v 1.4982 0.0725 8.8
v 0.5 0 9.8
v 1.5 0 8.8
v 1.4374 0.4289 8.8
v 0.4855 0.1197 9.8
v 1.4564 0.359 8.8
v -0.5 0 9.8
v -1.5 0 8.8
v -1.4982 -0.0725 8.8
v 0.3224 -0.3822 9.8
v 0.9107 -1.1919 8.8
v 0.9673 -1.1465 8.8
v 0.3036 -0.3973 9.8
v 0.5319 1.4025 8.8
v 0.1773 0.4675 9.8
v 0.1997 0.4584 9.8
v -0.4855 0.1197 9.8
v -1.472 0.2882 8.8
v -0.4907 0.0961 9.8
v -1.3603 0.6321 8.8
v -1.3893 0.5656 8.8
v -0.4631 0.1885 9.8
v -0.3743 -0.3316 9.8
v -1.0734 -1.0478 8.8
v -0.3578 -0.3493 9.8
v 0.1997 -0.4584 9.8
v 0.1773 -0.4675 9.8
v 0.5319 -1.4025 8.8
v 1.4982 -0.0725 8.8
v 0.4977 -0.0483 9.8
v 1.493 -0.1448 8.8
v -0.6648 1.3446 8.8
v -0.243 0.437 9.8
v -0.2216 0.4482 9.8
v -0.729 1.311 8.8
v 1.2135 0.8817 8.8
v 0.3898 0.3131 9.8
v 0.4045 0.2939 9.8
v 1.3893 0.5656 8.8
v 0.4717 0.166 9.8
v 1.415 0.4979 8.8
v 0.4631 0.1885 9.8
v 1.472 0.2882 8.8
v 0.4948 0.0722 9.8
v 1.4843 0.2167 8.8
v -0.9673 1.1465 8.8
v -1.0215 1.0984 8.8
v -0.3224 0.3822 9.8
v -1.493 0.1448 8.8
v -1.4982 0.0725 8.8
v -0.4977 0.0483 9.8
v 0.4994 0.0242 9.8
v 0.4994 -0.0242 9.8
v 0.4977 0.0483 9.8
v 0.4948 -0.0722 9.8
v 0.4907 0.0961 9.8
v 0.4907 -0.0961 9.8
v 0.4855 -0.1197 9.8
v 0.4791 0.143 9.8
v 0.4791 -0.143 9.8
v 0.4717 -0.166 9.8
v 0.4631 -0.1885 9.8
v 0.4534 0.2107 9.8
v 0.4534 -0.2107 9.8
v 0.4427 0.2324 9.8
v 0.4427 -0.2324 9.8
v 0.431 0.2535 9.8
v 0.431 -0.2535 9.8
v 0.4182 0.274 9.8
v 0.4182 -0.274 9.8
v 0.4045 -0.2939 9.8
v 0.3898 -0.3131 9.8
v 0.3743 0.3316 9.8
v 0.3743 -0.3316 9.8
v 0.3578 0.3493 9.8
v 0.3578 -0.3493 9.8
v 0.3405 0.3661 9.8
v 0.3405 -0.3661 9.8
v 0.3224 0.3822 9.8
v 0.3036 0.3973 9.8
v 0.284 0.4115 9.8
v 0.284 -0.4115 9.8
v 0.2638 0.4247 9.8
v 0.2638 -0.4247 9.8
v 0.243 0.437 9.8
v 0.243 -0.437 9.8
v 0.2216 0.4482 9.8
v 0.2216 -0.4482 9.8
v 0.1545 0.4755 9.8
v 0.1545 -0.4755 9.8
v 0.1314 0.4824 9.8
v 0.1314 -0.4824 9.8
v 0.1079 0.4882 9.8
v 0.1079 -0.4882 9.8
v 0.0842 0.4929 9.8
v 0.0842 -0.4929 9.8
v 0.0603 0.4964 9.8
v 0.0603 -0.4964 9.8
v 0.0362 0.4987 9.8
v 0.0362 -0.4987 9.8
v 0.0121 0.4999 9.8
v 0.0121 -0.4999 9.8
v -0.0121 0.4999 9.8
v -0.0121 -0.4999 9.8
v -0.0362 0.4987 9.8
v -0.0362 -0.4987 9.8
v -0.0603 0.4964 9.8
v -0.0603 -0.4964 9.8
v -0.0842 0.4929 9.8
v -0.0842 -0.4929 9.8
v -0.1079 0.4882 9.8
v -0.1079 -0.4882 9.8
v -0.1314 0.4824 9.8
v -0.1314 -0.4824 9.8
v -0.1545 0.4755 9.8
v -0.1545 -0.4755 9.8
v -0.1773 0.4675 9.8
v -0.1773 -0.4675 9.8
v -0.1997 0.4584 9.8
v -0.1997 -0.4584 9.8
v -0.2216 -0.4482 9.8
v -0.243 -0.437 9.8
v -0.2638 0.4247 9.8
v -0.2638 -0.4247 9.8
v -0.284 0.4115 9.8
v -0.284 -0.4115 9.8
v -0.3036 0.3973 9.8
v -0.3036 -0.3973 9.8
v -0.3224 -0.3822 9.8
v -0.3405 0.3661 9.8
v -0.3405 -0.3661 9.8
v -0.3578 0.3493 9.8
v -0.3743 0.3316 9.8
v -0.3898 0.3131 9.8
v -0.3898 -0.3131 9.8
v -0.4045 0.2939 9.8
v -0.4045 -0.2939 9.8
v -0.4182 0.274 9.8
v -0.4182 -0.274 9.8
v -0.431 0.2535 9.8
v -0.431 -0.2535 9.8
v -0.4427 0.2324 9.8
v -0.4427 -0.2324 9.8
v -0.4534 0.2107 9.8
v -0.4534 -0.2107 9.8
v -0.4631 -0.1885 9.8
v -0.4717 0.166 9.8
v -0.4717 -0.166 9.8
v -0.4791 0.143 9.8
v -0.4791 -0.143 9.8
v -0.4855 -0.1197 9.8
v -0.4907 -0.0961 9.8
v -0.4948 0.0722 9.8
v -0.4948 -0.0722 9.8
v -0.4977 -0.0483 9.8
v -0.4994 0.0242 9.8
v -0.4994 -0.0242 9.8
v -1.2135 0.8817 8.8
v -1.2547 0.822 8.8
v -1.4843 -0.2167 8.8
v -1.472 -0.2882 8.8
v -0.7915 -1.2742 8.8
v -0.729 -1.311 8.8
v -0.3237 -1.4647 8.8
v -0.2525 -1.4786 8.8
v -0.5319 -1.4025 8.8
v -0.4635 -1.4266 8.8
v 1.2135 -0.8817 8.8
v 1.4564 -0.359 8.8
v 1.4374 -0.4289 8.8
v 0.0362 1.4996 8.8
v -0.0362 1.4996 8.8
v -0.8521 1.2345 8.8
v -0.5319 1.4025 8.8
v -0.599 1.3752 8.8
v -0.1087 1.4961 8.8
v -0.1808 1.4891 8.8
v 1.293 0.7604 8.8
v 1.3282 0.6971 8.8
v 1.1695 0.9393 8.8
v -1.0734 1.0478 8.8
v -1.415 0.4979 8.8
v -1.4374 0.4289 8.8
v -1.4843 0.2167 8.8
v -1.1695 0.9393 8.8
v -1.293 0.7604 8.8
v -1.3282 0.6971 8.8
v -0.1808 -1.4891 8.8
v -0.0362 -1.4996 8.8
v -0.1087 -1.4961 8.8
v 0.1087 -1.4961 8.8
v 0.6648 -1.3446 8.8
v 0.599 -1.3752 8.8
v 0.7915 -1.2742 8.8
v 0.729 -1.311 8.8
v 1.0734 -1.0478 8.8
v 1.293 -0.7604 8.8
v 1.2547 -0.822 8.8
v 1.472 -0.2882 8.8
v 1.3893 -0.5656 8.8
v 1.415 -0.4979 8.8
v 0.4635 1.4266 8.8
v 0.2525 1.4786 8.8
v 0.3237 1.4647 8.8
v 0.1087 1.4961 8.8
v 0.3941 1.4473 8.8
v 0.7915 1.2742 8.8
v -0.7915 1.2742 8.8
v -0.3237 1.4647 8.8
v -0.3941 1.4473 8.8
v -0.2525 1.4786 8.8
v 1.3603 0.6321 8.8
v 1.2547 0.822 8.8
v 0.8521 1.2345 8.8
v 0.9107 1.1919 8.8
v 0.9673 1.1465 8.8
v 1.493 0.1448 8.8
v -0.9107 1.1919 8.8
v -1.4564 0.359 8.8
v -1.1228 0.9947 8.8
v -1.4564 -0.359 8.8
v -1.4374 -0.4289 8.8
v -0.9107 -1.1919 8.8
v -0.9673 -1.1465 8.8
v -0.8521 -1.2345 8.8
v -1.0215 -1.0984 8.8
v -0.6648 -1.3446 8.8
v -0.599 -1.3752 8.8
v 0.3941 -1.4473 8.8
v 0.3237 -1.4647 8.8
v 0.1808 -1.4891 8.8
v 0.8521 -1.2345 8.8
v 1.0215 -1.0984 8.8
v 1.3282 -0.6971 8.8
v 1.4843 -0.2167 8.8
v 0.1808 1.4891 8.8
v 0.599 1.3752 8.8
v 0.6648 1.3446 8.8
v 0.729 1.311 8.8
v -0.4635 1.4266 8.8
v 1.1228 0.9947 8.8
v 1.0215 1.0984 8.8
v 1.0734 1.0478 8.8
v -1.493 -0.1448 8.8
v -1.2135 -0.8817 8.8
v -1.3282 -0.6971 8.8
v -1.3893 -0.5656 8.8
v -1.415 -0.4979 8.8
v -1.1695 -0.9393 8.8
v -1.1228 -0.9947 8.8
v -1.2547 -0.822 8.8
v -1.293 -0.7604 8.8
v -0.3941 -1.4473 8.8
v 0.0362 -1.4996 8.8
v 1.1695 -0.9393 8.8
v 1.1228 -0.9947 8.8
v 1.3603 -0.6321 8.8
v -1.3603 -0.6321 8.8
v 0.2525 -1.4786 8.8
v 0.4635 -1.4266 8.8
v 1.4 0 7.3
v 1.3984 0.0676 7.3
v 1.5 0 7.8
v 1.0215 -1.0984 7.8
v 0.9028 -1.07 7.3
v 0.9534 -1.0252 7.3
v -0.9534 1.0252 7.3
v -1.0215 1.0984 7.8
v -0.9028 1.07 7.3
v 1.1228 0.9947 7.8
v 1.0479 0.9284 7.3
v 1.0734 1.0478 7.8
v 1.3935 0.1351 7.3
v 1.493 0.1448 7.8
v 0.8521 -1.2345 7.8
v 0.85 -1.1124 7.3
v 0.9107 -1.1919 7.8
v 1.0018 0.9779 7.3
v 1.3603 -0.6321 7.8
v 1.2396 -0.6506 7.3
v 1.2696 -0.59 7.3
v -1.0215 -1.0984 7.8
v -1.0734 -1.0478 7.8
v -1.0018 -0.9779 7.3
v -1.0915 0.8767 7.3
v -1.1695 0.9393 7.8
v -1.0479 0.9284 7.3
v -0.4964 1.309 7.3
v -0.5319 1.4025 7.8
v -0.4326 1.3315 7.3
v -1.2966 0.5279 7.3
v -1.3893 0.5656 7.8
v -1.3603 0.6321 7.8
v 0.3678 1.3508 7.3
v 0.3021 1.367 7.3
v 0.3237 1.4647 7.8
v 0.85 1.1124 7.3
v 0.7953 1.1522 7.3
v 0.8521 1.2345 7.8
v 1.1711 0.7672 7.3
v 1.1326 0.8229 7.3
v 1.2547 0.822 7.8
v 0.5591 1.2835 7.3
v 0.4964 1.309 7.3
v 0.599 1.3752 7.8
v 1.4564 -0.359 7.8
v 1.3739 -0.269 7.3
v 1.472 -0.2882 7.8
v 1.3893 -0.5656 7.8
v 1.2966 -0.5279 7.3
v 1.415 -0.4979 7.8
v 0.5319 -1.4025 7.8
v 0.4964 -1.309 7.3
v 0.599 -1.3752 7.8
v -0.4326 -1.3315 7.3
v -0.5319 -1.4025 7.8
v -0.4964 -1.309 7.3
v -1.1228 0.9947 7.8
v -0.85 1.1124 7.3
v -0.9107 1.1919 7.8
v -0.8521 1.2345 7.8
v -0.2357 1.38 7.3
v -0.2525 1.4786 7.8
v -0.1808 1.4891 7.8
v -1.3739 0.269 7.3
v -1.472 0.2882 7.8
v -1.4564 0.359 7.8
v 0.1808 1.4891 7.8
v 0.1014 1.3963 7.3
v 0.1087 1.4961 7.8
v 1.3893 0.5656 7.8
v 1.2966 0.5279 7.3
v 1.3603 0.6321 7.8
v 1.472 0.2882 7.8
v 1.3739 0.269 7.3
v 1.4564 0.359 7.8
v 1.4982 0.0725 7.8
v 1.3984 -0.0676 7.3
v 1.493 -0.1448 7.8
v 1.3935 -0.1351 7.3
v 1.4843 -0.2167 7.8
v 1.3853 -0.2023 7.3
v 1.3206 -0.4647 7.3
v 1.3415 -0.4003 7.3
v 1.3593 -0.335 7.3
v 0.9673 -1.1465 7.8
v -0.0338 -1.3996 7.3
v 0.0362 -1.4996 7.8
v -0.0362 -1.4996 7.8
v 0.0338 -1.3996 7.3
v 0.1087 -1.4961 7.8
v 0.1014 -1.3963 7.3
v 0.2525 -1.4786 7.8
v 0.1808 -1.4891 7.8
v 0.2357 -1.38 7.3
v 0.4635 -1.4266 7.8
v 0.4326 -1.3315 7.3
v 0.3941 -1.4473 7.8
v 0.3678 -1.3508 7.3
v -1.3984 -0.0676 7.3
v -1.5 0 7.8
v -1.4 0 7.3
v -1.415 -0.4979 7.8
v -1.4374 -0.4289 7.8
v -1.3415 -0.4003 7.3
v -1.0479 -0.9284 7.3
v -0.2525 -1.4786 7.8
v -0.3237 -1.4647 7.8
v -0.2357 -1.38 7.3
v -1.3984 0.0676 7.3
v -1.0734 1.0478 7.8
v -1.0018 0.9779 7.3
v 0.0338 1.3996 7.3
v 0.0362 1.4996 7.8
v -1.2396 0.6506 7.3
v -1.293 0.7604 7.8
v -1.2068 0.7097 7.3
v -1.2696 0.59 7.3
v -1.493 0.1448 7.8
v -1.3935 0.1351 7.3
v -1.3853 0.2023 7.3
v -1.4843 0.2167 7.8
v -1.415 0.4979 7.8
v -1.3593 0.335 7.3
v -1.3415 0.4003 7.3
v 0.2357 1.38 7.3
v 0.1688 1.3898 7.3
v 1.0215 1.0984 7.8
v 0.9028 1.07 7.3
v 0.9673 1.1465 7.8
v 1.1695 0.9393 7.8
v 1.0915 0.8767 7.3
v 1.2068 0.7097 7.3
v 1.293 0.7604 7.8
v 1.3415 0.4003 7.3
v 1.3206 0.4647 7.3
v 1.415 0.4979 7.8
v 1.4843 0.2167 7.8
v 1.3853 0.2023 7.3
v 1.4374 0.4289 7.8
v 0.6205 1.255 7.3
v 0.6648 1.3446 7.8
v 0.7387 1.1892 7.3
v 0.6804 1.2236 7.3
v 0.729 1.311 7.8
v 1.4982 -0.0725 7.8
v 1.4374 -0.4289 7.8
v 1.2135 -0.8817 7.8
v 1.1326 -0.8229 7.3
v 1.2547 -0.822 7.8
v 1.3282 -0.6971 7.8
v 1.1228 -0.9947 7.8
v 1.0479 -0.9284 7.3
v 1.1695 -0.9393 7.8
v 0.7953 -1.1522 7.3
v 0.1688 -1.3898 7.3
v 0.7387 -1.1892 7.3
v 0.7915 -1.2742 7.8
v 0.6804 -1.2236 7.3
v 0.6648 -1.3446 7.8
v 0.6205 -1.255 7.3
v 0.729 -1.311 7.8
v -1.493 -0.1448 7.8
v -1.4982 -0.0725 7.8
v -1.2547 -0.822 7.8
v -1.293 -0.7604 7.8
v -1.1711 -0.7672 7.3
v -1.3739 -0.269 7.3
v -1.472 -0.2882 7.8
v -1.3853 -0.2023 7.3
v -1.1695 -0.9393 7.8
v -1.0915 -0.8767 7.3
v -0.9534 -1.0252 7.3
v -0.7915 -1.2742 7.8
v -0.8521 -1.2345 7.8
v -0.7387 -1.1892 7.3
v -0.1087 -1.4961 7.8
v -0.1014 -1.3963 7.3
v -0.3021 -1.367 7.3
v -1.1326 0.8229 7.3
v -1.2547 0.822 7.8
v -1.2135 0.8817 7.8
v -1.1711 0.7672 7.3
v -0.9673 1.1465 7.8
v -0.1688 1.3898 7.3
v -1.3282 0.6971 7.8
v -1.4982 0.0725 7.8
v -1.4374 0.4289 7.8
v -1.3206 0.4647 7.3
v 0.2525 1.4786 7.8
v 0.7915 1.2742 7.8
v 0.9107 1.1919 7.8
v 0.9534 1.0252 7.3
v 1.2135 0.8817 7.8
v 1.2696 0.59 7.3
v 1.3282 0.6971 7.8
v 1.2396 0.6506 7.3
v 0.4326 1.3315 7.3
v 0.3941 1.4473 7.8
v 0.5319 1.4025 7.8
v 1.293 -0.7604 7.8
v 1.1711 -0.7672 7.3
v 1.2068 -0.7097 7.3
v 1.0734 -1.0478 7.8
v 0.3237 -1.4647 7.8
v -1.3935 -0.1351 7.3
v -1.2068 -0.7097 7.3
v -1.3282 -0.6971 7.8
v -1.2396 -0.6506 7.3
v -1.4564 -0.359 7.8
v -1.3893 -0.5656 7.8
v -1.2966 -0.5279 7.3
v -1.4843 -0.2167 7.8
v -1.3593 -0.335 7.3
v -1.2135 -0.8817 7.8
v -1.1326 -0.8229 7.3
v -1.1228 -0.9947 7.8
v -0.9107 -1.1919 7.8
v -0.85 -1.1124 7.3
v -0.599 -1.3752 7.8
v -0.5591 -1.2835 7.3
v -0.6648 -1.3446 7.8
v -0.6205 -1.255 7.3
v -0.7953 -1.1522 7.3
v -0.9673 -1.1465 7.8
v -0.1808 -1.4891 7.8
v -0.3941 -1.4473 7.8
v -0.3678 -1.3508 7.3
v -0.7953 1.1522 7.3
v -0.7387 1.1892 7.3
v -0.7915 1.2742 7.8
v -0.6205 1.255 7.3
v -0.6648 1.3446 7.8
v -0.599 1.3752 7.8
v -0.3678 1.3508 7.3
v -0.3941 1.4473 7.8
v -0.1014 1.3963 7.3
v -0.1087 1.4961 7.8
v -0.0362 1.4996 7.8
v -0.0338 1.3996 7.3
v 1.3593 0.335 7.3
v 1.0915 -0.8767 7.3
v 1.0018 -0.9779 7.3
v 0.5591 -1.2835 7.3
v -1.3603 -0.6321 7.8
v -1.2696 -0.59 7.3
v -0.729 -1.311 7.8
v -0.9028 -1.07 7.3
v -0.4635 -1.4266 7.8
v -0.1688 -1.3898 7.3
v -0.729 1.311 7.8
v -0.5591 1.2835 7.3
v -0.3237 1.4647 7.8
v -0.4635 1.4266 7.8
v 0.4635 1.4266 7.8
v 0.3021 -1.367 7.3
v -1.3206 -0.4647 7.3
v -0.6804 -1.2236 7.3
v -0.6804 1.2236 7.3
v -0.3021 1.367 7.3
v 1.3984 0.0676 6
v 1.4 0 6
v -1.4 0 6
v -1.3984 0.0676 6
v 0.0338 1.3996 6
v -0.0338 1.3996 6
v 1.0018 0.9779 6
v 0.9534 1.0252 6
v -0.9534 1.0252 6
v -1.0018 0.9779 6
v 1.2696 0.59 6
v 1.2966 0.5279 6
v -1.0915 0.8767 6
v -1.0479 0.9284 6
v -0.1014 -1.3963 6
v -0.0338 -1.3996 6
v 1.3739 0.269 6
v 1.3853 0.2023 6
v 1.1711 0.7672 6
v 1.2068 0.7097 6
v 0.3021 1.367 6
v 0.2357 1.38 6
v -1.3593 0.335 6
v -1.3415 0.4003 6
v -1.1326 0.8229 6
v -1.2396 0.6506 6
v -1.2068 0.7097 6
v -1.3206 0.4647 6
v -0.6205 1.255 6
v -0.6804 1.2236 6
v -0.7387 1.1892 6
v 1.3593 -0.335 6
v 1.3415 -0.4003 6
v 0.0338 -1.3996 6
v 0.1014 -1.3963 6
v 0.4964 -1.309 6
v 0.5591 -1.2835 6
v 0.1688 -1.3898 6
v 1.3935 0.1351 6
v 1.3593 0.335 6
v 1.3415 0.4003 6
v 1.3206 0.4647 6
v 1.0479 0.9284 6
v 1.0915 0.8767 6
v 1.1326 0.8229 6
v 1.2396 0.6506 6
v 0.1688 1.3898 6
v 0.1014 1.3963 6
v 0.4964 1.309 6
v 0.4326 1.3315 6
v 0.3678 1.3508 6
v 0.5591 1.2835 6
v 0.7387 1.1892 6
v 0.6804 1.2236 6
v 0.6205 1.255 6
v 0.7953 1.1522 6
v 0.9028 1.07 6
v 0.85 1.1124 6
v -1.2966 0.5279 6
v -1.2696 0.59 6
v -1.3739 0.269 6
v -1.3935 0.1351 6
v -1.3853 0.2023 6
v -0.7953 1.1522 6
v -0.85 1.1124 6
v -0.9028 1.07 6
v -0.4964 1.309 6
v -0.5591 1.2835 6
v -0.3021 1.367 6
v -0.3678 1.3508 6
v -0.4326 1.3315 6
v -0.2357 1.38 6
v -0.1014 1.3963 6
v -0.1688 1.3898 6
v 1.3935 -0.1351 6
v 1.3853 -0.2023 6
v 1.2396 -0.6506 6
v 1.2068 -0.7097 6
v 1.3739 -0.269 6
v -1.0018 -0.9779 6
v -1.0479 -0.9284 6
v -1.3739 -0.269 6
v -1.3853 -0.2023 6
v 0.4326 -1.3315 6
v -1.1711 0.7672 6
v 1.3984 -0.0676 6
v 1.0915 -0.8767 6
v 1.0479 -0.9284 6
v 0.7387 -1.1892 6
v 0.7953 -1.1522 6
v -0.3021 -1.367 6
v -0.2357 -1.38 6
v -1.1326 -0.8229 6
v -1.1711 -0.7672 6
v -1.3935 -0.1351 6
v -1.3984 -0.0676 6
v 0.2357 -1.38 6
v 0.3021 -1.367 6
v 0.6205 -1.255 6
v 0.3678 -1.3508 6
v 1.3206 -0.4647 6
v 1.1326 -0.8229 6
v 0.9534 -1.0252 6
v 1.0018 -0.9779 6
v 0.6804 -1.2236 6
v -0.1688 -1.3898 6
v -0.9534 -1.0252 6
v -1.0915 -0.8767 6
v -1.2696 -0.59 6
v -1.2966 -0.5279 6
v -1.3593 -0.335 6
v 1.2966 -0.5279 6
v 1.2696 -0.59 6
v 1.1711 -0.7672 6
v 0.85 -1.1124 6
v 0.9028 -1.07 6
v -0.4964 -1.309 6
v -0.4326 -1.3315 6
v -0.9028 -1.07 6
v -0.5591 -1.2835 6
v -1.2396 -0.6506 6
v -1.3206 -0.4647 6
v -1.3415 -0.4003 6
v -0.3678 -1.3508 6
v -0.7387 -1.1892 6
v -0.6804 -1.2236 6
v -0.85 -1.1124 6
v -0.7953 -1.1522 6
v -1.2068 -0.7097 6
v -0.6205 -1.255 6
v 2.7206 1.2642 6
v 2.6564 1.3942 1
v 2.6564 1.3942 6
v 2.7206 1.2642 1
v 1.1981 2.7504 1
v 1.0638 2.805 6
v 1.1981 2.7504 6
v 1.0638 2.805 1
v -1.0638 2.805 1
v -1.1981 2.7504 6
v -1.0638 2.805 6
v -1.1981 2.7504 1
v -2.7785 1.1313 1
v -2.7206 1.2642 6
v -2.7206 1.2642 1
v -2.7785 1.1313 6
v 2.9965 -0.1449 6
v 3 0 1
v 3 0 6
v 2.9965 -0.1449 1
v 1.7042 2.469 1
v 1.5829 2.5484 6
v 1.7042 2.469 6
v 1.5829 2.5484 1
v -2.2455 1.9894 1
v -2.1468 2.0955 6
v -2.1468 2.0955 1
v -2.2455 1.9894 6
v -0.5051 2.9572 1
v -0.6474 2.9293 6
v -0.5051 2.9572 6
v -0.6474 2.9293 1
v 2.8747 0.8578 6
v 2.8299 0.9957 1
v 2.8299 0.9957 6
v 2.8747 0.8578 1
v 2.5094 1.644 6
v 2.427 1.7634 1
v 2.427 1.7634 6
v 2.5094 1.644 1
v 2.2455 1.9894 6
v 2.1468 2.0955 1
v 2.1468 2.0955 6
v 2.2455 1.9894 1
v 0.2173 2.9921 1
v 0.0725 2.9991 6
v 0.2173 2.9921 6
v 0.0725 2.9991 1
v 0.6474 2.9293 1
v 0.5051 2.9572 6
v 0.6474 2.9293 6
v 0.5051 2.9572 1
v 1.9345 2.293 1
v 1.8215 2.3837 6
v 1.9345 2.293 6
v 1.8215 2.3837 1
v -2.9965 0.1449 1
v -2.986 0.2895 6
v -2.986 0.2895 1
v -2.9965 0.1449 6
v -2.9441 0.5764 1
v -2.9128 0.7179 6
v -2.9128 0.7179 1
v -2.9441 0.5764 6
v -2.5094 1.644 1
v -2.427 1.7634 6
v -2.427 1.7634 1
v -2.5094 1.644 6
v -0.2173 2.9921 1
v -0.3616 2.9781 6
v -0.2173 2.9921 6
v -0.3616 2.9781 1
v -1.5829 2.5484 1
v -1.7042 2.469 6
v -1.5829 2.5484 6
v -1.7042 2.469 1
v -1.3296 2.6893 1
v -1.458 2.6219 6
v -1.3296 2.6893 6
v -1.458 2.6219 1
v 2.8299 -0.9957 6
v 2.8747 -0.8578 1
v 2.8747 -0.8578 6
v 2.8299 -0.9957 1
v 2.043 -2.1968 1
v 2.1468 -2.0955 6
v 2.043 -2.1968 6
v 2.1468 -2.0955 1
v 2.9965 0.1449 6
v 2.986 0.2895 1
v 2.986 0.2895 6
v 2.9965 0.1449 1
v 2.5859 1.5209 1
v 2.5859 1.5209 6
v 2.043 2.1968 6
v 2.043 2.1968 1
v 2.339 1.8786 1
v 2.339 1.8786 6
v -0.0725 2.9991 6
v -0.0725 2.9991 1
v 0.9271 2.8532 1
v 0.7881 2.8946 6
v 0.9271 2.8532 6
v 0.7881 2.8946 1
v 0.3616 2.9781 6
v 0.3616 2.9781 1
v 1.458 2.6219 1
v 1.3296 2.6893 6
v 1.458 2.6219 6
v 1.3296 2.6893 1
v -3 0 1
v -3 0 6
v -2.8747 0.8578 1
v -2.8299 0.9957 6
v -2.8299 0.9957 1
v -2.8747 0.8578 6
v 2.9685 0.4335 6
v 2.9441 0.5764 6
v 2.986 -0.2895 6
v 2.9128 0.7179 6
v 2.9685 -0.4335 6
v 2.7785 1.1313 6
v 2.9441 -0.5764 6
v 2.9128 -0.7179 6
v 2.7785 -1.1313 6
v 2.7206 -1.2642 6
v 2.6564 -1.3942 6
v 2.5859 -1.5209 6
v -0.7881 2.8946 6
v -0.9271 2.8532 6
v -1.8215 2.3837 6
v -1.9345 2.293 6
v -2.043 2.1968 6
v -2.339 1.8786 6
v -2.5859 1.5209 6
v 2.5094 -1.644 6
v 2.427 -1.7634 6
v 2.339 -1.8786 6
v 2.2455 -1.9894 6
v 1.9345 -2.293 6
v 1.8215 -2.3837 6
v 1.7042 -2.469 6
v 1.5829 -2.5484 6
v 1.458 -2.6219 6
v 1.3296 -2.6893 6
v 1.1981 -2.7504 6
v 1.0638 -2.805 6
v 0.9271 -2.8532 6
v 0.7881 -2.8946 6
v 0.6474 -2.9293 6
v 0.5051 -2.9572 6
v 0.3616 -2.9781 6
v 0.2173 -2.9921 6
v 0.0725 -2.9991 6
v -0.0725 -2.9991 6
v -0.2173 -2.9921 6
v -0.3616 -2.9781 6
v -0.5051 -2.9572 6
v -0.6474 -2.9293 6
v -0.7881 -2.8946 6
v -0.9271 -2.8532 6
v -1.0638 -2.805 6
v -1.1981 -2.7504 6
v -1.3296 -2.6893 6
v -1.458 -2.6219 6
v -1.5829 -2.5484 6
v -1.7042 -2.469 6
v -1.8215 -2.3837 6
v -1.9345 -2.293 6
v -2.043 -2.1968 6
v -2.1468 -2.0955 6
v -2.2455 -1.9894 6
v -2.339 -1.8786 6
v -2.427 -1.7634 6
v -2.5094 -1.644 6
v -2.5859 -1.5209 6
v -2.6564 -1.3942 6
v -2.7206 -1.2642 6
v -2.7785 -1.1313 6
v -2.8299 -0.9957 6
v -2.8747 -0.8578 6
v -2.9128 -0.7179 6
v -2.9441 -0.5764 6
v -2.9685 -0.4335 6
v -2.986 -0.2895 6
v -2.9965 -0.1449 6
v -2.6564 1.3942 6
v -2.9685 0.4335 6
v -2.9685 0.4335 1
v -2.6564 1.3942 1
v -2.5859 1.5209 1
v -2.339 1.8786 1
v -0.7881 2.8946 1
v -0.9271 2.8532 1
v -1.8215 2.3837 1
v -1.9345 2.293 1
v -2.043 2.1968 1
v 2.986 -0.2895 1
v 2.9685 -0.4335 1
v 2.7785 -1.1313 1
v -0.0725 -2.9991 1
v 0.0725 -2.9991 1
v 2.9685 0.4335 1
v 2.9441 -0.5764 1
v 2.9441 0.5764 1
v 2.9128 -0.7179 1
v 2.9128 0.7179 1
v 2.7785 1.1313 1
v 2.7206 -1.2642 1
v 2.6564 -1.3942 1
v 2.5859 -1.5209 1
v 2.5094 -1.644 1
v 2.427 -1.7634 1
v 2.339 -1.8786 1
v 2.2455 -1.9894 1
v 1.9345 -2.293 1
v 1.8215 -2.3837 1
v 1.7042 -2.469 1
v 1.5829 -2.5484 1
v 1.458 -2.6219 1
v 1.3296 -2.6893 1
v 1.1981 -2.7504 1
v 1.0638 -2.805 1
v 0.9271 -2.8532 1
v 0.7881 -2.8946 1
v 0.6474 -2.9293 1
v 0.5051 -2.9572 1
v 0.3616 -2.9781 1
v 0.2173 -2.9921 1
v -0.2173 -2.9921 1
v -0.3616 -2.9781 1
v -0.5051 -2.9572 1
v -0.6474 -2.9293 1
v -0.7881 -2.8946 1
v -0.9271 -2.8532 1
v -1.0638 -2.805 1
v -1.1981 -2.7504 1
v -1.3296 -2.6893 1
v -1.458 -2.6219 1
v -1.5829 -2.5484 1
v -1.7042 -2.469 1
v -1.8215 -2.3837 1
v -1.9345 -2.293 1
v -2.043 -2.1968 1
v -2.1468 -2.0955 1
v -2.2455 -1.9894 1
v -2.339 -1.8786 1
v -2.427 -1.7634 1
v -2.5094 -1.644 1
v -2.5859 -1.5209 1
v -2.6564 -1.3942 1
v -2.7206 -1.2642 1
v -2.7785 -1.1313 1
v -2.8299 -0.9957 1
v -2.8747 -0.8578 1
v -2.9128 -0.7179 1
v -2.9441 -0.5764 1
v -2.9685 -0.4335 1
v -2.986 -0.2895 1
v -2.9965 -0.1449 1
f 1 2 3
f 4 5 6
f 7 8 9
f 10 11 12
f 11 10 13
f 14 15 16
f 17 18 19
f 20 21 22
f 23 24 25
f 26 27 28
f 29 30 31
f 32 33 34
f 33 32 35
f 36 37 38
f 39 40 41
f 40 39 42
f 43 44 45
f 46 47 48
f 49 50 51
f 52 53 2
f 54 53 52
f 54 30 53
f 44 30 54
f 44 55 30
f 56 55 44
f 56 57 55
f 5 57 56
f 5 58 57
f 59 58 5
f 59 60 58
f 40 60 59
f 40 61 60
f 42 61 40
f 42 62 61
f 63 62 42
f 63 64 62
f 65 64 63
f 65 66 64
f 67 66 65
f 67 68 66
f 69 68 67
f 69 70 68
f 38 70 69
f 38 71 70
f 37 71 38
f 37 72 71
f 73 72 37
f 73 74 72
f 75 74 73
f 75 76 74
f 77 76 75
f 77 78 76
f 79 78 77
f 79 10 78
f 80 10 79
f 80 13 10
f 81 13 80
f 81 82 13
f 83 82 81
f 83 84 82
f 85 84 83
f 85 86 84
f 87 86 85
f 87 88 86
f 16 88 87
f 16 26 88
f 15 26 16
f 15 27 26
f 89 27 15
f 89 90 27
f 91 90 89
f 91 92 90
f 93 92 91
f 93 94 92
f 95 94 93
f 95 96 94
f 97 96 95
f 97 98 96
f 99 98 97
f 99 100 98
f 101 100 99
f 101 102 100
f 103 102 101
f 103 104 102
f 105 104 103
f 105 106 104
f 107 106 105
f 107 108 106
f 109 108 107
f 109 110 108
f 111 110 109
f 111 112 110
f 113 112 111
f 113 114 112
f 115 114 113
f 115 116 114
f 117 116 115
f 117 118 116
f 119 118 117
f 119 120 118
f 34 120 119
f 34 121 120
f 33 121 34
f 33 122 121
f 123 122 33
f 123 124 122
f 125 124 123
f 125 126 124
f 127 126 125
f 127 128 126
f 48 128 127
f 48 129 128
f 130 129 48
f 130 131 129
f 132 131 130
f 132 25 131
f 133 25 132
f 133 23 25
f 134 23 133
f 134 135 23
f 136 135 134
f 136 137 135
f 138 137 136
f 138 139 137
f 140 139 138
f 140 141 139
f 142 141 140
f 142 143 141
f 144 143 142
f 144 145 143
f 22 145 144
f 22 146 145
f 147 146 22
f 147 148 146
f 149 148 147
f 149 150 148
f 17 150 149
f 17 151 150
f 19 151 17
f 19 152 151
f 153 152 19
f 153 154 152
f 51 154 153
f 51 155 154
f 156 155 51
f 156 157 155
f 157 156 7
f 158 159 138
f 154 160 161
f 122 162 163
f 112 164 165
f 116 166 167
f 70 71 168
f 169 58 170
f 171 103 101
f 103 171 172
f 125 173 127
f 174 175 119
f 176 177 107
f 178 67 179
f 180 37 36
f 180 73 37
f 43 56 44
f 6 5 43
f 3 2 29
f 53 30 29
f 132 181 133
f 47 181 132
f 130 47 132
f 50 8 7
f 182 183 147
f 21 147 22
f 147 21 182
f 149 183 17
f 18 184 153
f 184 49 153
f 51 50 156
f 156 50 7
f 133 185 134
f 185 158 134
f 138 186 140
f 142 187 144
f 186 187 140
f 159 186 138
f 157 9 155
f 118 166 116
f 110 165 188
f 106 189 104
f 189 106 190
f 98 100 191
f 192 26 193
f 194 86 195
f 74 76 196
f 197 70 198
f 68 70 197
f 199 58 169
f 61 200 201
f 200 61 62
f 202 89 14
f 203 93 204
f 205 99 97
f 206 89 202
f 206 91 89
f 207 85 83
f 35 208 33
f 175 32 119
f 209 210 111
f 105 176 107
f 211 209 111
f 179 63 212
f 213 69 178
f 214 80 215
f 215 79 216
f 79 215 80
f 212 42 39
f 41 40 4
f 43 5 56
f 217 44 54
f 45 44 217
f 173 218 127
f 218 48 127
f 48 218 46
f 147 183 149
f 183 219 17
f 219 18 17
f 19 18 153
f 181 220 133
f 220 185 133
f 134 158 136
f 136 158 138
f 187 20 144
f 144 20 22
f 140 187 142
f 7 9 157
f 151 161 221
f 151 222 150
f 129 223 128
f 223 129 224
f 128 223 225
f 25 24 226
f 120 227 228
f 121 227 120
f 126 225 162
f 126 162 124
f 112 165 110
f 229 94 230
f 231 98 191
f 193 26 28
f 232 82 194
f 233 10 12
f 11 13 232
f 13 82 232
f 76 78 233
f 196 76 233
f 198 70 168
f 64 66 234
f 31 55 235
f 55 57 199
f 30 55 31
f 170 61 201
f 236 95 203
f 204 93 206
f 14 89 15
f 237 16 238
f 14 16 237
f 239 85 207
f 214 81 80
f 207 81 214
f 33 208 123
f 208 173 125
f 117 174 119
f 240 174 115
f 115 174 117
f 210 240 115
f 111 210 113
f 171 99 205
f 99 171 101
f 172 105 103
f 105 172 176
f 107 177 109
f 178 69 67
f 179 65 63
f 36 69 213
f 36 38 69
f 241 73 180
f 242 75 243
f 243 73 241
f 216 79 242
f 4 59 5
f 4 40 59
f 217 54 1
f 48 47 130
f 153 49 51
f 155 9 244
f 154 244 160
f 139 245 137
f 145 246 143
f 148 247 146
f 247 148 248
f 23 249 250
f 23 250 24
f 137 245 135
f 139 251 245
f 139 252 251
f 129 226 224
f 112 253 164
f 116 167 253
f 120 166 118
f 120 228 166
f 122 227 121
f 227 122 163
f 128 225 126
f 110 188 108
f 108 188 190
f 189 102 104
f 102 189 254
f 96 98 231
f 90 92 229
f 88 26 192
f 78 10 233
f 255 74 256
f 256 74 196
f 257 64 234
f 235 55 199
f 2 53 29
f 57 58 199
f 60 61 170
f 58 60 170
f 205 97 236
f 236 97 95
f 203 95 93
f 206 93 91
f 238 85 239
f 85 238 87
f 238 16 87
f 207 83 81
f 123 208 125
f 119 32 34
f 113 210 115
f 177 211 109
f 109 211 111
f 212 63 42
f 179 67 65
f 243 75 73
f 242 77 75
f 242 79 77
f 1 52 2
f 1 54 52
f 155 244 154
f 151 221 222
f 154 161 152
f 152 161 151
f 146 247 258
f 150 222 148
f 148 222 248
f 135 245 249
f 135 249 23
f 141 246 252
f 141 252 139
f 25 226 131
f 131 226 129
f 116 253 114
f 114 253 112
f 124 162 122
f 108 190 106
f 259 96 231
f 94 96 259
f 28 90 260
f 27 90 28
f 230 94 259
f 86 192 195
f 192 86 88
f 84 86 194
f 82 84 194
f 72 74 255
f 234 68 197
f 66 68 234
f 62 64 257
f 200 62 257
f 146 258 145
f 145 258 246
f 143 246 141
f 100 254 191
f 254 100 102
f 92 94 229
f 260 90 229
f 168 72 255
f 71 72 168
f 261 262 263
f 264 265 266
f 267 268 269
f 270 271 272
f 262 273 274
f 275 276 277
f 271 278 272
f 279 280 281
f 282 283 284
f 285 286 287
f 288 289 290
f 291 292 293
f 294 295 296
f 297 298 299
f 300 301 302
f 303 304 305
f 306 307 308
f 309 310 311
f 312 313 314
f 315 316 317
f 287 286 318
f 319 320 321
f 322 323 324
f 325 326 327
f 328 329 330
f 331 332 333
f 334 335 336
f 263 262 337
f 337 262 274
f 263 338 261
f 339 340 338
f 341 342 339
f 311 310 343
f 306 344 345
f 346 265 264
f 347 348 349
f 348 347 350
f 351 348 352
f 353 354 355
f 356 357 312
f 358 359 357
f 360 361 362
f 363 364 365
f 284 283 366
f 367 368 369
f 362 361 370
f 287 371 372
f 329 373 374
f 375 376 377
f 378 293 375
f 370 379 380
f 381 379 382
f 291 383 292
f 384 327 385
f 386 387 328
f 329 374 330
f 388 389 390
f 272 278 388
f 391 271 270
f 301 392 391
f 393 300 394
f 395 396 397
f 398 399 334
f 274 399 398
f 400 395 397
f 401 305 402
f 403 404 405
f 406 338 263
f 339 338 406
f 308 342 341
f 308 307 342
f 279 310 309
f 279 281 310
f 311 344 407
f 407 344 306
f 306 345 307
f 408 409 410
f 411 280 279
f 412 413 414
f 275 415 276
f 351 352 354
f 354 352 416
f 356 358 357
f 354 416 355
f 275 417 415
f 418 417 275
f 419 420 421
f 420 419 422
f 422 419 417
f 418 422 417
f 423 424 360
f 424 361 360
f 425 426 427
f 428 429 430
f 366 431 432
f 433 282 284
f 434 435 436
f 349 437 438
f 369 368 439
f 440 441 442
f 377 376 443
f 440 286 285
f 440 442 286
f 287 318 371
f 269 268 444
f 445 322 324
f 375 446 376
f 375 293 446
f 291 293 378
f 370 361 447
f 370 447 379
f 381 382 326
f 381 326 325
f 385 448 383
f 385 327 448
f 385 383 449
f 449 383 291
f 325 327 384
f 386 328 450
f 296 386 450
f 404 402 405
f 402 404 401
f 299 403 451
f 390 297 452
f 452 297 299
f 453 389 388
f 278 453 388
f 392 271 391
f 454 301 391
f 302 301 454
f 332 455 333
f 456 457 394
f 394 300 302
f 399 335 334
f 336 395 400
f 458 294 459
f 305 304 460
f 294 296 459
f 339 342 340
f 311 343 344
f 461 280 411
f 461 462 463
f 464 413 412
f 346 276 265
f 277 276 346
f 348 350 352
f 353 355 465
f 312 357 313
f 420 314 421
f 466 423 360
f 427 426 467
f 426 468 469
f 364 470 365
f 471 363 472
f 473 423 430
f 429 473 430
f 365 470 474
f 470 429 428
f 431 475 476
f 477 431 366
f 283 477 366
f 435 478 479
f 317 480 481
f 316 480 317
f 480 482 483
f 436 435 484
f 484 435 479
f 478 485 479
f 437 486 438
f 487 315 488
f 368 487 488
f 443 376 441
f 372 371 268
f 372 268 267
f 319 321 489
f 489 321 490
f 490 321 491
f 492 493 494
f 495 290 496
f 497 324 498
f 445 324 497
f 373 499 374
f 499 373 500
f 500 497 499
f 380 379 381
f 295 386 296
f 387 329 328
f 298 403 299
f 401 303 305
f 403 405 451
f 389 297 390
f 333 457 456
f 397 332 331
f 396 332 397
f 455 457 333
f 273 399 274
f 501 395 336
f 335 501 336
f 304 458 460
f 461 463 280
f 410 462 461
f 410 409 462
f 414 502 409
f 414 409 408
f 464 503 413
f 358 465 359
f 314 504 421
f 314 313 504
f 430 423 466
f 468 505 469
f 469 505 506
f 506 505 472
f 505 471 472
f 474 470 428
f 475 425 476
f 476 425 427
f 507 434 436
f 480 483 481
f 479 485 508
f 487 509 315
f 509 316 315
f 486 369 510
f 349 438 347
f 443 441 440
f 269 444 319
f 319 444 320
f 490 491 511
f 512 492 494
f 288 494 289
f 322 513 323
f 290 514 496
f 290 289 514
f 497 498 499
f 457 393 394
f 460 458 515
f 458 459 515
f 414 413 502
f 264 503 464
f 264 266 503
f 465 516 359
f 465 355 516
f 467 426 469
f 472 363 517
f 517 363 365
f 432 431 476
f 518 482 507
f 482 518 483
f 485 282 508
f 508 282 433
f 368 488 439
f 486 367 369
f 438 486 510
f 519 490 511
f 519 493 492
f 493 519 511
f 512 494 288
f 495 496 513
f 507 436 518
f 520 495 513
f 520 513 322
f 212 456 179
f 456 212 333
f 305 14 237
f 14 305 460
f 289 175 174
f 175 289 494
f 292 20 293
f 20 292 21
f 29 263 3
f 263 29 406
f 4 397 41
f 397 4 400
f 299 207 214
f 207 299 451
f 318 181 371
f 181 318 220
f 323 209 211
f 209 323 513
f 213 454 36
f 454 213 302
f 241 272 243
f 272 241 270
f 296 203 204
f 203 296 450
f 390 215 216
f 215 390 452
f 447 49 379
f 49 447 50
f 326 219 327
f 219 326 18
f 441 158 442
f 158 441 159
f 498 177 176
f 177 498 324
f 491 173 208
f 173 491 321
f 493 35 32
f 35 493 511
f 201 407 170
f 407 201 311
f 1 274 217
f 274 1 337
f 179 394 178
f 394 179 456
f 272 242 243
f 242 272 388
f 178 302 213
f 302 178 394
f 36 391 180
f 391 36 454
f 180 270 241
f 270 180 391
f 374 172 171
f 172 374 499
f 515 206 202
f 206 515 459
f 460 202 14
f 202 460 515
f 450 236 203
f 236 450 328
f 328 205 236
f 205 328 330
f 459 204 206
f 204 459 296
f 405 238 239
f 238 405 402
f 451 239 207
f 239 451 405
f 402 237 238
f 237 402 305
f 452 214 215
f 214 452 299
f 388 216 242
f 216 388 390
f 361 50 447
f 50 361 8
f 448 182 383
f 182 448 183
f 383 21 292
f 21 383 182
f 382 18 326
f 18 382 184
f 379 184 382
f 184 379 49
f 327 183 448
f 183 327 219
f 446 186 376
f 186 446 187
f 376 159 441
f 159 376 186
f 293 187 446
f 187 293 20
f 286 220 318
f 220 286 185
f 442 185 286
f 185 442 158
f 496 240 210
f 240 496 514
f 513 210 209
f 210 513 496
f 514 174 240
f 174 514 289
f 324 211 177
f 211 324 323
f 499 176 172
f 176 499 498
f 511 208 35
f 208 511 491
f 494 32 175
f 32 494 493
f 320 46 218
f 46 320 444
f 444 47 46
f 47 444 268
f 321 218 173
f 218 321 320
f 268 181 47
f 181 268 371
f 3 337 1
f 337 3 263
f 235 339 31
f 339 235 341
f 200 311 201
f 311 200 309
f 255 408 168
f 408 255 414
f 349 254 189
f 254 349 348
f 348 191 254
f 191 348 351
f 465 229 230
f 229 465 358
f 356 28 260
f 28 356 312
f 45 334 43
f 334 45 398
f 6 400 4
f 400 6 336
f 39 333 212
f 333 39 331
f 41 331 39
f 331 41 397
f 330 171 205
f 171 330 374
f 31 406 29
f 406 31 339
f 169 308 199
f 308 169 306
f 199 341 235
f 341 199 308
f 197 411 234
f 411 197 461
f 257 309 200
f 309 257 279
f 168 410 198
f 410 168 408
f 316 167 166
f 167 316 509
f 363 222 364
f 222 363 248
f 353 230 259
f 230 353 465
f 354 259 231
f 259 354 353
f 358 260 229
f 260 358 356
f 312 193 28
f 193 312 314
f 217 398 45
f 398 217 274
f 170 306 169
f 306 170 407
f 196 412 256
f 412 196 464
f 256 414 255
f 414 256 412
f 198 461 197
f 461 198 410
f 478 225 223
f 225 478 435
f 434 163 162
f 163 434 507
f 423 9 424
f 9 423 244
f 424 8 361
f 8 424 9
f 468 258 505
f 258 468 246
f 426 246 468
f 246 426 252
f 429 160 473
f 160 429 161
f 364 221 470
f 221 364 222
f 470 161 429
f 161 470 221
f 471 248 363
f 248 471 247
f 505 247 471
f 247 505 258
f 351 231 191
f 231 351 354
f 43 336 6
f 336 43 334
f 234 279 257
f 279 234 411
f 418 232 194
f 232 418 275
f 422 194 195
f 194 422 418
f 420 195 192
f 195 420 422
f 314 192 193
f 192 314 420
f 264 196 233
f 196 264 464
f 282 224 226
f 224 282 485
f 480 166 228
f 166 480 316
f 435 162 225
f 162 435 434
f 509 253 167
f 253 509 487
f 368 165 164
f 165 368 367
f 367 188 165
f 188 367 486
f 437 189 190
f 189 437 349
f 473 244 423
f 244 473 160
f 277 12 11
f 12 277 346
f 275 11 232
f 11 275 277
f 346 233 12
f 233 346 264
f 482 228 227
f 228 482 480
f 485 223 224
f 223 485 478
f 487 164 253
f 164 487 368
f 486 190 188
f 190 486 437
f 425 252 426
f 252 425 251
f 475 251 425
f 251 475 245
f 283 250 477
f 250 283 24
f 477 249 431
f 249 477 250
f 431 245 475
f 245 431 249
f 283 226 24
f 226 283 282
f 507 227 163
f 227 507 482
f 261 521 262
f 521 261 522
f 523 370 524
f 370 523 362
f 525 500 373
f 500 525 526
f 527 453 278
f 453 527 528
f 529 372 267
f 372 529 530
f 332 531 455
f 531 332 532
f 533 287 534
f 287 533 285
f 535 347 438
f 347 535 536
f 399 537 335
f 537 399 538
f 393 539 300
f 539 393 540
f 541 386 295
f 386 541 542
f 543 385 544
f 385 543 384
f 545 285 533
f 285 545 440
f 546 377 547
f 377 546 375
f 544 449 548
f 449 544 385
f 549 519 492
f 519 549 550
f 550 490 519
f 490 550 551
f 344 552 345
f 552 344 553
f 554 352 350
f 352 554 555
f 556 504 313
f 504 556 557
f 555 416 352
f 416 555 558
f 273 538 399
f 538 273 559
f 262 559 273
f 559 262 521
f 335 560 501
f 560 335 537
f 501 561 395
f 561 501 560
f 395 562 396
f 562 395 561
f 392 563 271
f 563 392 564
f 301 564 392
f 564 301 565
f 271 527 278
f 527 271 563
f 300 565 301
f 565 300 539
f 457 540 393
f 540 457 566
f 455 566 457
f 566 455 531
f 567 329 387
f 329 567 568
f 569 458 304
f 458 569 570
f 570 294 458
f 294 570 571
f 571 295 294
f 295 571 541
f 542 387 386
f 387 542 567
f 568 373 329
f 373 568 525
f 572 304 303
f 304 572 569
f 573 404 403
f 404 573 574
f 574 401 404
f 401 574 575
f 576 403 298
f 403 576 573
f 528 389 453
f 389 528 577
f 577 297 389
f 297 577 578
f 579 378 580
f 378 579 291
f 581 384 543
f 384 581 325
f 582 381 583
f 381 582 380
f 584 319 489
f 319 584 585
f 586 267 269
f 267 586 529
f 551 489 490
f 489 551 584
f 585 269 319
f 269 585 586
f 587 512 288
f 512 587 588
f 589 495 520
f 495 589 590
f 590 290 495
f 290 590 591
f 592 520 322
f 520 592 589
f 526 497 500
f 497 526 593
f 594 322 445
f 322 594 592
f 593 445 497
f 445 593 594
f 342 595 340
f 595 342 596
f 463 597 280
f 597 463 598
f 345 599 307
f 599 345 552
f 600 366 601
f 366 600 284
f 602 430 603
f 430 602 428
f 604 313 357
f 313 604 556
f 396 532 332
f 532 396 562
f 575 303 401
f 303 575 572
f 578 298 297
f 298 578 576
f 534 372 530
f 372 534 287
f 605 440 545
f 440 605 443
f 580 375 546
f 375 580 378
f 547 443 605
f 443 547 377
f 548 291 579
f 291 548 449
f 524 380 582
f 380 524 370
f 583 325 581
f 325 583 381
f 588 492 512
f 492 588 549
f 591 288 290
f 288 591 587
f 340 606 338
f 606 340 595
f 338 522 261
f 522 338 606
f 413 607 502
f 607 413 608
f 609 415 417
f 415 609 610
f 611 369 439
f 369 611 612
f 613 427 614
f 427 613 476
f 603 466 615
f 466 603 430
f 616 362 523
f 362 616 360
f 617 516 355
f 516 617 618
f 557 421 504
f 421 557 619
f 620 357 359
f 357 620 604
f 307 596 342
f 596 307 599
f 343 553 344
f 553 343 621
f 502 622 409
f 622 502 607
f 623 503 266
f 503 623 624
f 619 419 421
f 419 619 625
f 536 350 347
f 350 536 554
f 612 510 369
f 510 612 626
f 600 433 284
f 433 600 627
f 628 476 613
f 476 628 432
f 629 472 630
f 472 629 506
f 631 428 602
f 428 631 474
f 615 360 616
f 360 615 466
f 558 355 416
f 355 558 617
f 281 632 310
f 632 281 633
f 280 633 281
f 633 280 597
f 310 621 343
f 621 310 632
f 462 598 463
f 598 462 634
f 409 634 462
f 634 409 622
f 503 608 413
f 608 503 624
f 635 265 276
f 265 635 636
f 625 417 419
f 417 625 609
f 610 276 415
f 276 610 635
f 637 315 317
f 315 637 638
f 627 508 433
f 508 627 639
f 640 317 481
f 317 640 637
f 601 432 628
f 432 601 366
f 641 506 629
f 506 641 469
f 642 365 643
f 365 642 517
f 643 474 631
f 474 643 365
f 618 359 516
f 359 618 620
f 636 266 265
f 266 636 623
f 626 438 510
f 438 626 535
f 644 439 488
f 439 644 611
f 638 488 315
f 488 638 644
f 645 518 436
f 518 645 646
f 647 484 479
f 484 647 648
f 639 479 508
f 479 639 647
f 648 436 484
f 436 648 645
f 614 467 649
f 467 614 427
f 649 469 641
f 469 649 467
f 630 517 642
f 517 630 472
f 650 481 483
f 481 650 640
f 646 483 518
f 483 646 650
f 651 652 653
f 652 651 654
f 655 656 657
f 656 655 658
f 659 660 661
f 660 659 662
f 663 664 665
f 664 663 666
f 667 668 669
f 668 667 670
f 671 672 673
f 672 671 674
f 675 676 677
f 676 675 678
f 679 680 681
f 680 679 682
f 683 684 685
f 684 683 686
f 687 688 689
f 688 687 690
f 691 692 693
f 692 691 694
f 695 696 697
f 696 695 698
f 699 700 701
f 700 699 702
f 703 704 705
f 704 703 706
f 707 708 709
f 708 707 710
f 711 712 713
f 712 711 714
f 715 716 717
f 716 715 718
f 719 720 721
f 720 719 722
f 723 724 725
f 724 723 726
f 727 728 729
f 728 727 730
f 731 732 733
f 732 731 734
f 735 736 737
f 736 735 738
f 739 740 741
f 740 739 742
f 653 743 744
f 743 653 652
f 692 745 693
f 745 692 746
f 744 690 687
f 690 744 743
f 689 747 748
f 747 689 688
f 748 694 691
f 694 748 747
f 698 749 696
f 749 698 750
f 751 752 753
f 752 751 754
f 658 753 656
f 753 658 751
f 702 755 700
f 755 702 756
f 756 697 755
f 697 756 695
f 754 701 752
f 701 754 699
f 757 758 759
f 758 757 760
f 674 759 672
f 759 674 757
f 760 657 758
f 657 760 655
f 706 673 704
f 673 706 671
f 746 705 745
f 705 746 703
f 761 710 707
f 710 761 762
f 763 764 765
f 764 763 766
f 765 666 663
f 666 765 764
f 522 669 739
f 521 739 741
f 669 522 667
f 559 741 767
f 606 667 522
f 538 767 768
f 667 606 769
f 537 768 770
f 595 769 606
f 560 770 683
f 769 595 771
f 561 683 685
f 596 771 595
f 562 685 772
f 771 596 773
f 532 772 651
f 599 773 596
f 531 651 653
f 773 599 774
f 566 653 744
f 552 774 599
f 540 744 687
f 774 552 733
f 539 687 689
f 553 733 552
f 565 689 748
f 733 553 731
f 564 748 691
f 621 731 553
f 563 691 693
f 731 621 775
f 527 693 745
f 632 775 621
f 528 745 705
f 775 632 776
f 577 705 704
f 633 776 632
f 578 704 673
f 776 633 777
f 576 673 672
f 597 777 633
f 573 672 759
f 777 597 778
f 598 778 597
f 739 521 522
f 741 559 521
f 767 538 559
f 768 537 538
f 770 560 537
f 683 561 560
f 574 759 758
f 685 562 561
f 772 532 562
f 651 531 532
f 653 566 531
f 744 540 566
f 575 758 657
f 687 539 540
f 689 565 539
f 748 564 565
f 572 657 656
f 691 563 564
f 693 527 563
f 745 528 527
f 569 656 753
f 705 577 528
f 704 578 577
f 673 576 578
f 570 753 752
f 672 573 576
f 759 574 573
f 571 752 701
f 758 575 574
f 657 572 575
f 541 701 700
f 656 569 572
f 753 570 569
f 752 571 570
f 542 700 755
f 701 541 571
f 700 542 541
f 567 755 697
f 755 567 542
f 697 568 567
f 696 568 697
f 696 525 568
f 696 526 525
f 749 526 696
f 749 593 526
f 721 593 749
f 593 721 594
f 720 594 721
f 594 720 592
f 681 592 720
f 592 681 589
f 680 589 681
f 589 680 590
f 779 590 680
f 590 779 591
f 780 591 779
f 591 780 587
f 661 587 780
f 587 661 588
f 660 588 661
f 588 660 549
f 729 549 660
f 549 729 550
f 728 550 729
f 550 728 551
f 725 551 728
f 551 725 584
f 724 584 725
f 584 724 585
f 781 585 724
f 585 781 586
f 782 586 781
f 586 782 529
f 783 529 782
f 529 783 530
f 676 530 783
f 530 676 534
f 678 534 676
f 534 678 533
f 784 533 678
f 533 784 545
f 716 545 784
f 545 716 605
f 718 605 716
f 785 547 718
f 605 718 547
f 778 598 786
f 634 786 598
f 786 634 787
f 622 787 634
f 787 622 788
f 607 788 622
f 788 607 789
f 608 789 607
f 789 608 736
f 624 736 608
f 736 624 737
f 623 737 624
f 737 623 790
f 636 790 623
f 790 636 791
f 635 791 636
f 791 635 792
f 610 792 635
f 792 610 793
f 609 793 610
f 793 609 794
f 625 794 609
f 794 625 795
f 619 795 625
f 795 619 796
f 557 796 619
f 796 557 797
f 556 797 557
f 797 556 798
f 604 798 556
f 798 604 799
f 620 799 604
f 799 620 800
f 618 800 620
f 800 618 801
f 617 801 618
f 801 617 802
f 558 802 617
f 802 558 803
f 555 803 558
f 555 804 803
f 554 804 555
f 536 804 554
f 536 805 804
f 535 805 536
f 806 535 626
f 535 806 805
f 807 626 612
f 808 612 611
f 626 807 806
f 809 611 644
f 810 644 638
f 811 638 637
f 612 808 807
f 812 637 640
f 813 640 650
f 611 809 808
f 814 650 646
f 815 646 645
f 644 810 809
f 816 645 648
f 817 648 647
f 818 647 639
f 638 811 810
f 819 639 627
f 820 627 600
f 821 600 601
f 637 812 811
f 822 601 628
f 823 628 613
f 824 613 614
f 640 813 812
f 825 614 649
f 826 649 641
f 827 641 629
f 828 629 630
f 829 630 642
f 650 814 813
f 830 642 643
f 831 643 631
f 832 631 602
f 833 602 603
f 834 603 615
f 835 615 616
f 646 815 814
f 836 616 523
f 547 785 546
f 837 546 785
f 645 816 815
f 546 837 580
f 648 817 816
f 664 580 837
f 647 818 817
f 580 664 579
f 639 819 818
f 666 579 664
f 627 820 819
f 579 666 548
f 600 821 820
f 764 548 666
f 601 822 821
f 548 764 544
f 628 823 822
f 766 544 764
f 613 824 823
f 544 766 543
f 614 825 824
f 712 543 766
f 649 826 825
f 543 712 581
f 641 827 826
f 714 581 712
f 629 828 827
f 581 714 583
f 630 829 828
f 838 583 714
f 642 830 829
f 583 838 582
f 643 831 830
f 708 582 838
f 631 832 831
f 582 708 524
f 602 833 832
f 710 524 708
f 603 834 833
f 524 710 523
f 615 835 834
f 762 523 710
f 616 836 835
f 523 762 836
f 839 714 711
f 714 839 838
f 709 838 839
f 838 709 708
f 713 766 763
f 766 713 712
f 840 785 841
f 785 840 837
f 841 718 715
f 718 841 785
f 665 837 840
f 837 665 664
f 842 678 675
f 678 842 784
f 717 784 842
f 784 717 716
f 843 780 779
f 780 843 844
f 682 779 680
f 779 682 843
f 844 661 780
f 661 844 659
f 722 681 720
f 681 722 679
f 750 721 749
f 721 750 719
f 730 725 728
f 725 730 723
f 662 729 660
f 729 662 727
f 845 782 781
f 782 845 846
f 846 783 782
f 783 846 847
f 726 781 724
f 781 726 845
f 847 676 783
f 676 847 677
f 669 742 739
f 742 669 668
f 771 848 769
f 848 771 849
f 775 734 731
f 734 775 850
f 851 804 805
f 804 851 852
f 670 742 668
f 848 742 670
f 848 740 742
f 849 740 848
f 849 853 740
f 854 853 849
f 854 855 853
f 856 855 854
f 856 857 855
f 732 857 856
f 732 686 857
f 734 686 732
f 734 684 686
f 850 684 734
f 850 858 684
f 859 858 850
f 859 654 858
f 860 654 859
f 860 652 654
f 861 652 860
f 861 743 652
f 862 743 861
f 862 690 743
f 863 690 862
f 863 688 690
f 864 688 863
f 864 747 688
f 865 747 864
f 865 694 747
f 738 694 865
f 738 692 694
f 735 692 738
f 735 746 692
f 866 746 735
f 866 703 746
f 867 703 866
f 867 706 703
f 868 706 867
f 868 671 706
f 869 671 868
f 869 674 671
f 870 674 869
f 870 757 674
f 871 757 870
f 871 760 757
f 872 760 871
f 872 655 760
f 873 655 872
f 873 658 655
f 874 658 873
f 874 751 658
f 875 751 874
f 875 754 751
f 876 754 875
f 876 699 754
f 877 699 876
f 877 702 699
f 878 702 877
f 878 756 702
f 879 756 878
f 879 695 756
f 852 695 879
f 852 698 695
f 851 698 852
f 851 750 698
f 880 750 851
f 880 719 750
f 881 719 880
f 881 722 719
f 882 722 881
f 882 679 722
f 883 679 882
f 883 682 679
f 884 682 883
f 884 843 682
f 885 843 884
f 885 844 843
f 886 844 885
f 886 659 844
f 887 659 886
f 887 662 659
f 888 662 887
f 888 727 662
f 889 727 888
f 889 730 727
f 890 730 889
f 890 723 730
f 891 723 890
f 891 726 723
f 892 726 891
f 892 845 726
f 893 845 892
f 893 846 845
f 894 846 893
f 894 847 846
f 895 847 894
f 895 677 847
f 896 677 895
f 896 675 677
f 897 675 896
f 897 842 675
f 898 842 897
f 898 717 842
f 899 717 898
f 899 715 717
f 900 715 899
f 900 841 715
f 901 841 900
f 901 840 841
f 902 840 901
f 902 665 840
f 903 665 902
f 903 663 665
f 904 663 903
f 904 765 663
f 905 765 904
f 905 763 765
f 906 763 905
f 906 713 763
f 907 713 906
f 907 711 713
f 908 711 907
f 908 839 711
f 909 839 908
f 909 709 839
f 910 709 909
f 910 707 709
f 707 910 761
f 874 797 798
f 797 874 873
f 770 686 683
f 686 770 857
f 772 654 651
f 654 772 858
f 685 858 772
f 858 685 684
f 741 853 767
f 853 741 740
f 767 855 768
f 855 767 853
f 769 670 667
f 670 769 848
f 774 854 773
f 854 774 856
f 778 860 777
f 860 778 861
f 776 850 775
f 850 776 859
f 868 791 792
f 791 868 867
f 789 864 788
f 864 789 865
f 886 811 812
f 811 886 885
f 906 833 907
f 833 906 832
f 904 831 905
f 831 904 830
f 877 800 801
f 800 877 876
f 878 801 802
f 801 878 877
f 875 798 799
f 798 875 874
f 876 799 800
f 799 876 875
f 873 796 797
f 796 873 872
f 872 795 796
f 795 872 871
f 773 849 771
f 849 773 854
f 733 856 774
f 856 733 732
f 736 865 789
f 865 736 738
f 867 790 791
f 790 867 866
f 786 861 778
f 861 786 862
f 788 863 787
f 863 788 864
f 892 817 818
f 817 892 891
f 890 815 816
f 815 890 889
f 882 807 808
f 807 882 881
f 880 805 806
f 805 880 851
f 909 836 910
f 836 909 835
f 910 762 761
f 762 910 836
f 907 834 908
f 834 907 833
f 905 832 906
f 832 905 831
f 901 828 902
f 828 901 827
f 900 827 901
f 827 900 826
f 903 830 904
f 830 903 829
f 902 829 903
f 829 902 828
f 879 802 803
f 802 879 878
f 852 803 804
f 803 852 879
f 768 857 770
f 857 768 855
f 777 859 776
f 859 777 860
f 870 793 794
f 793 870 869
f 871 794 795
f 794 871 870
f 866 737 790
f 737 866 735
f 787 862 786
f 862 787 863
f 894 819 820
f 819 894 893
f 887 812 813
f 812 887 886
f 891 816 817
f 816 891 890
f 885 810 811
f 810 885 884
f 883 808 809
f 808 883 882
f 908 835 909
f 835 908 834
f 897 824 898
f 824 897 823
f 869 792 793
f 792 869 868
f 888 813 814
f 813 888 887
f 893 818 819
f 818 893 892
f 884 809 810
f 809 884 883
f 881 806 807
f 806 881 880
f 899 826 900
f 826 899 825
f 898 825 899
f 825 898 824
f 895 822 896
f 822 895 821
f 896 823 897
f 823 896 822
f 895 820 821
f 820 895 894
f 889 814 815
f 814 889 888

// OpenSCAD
$fn=130;

D_sock=6;   //Sockeldurchmesser
D_knub=3.0; //Knubbeldurchmesser
H_sock=5;   //Sockelhöhe
H_knub=10   ;  //Knubbelhöhe 10 = Knuppelsockel=1.3mm
S_knub=0.2; //Schaftdurchmesser=Knubbeldurchmesser-0.5

//Sockel
H=H_sock-6;
color("SlateGray")
//color("WhiteSmoke")
translate([0,0,H*-1])
cylinder (h=H_sock, d=D_sock);

difference(){

//Knubbl
//color("SlateGray")
color("WhiteSmoke")    

union(){

translate([0,0,H_knub-1.2])
cylinder (h=1, d1=D_knub, d2=D_knub-2);

translate([0,0,H_knub-2.7])
cylinder (h=0.5, d1=D_knub-S_knub, d2=D_knub);

translate([0,0,H_knub-2.2])
cylinder (h=1, d1=D_knub, d2=D_knub);

//Schaft
translate([0,0,5.3])
cylinder (h=2.5, d=D_knub-S_knub);   
}

/*
//Einschnitt
translate([-0.4,-2.5,6.3])
 cube([0.9,5,7]);
*/
}

//Knuppel-Shaft messen V3 Höhe = 1.3mm
//translate([2,-3,6])
// cube([0.9,5,1.3]);
